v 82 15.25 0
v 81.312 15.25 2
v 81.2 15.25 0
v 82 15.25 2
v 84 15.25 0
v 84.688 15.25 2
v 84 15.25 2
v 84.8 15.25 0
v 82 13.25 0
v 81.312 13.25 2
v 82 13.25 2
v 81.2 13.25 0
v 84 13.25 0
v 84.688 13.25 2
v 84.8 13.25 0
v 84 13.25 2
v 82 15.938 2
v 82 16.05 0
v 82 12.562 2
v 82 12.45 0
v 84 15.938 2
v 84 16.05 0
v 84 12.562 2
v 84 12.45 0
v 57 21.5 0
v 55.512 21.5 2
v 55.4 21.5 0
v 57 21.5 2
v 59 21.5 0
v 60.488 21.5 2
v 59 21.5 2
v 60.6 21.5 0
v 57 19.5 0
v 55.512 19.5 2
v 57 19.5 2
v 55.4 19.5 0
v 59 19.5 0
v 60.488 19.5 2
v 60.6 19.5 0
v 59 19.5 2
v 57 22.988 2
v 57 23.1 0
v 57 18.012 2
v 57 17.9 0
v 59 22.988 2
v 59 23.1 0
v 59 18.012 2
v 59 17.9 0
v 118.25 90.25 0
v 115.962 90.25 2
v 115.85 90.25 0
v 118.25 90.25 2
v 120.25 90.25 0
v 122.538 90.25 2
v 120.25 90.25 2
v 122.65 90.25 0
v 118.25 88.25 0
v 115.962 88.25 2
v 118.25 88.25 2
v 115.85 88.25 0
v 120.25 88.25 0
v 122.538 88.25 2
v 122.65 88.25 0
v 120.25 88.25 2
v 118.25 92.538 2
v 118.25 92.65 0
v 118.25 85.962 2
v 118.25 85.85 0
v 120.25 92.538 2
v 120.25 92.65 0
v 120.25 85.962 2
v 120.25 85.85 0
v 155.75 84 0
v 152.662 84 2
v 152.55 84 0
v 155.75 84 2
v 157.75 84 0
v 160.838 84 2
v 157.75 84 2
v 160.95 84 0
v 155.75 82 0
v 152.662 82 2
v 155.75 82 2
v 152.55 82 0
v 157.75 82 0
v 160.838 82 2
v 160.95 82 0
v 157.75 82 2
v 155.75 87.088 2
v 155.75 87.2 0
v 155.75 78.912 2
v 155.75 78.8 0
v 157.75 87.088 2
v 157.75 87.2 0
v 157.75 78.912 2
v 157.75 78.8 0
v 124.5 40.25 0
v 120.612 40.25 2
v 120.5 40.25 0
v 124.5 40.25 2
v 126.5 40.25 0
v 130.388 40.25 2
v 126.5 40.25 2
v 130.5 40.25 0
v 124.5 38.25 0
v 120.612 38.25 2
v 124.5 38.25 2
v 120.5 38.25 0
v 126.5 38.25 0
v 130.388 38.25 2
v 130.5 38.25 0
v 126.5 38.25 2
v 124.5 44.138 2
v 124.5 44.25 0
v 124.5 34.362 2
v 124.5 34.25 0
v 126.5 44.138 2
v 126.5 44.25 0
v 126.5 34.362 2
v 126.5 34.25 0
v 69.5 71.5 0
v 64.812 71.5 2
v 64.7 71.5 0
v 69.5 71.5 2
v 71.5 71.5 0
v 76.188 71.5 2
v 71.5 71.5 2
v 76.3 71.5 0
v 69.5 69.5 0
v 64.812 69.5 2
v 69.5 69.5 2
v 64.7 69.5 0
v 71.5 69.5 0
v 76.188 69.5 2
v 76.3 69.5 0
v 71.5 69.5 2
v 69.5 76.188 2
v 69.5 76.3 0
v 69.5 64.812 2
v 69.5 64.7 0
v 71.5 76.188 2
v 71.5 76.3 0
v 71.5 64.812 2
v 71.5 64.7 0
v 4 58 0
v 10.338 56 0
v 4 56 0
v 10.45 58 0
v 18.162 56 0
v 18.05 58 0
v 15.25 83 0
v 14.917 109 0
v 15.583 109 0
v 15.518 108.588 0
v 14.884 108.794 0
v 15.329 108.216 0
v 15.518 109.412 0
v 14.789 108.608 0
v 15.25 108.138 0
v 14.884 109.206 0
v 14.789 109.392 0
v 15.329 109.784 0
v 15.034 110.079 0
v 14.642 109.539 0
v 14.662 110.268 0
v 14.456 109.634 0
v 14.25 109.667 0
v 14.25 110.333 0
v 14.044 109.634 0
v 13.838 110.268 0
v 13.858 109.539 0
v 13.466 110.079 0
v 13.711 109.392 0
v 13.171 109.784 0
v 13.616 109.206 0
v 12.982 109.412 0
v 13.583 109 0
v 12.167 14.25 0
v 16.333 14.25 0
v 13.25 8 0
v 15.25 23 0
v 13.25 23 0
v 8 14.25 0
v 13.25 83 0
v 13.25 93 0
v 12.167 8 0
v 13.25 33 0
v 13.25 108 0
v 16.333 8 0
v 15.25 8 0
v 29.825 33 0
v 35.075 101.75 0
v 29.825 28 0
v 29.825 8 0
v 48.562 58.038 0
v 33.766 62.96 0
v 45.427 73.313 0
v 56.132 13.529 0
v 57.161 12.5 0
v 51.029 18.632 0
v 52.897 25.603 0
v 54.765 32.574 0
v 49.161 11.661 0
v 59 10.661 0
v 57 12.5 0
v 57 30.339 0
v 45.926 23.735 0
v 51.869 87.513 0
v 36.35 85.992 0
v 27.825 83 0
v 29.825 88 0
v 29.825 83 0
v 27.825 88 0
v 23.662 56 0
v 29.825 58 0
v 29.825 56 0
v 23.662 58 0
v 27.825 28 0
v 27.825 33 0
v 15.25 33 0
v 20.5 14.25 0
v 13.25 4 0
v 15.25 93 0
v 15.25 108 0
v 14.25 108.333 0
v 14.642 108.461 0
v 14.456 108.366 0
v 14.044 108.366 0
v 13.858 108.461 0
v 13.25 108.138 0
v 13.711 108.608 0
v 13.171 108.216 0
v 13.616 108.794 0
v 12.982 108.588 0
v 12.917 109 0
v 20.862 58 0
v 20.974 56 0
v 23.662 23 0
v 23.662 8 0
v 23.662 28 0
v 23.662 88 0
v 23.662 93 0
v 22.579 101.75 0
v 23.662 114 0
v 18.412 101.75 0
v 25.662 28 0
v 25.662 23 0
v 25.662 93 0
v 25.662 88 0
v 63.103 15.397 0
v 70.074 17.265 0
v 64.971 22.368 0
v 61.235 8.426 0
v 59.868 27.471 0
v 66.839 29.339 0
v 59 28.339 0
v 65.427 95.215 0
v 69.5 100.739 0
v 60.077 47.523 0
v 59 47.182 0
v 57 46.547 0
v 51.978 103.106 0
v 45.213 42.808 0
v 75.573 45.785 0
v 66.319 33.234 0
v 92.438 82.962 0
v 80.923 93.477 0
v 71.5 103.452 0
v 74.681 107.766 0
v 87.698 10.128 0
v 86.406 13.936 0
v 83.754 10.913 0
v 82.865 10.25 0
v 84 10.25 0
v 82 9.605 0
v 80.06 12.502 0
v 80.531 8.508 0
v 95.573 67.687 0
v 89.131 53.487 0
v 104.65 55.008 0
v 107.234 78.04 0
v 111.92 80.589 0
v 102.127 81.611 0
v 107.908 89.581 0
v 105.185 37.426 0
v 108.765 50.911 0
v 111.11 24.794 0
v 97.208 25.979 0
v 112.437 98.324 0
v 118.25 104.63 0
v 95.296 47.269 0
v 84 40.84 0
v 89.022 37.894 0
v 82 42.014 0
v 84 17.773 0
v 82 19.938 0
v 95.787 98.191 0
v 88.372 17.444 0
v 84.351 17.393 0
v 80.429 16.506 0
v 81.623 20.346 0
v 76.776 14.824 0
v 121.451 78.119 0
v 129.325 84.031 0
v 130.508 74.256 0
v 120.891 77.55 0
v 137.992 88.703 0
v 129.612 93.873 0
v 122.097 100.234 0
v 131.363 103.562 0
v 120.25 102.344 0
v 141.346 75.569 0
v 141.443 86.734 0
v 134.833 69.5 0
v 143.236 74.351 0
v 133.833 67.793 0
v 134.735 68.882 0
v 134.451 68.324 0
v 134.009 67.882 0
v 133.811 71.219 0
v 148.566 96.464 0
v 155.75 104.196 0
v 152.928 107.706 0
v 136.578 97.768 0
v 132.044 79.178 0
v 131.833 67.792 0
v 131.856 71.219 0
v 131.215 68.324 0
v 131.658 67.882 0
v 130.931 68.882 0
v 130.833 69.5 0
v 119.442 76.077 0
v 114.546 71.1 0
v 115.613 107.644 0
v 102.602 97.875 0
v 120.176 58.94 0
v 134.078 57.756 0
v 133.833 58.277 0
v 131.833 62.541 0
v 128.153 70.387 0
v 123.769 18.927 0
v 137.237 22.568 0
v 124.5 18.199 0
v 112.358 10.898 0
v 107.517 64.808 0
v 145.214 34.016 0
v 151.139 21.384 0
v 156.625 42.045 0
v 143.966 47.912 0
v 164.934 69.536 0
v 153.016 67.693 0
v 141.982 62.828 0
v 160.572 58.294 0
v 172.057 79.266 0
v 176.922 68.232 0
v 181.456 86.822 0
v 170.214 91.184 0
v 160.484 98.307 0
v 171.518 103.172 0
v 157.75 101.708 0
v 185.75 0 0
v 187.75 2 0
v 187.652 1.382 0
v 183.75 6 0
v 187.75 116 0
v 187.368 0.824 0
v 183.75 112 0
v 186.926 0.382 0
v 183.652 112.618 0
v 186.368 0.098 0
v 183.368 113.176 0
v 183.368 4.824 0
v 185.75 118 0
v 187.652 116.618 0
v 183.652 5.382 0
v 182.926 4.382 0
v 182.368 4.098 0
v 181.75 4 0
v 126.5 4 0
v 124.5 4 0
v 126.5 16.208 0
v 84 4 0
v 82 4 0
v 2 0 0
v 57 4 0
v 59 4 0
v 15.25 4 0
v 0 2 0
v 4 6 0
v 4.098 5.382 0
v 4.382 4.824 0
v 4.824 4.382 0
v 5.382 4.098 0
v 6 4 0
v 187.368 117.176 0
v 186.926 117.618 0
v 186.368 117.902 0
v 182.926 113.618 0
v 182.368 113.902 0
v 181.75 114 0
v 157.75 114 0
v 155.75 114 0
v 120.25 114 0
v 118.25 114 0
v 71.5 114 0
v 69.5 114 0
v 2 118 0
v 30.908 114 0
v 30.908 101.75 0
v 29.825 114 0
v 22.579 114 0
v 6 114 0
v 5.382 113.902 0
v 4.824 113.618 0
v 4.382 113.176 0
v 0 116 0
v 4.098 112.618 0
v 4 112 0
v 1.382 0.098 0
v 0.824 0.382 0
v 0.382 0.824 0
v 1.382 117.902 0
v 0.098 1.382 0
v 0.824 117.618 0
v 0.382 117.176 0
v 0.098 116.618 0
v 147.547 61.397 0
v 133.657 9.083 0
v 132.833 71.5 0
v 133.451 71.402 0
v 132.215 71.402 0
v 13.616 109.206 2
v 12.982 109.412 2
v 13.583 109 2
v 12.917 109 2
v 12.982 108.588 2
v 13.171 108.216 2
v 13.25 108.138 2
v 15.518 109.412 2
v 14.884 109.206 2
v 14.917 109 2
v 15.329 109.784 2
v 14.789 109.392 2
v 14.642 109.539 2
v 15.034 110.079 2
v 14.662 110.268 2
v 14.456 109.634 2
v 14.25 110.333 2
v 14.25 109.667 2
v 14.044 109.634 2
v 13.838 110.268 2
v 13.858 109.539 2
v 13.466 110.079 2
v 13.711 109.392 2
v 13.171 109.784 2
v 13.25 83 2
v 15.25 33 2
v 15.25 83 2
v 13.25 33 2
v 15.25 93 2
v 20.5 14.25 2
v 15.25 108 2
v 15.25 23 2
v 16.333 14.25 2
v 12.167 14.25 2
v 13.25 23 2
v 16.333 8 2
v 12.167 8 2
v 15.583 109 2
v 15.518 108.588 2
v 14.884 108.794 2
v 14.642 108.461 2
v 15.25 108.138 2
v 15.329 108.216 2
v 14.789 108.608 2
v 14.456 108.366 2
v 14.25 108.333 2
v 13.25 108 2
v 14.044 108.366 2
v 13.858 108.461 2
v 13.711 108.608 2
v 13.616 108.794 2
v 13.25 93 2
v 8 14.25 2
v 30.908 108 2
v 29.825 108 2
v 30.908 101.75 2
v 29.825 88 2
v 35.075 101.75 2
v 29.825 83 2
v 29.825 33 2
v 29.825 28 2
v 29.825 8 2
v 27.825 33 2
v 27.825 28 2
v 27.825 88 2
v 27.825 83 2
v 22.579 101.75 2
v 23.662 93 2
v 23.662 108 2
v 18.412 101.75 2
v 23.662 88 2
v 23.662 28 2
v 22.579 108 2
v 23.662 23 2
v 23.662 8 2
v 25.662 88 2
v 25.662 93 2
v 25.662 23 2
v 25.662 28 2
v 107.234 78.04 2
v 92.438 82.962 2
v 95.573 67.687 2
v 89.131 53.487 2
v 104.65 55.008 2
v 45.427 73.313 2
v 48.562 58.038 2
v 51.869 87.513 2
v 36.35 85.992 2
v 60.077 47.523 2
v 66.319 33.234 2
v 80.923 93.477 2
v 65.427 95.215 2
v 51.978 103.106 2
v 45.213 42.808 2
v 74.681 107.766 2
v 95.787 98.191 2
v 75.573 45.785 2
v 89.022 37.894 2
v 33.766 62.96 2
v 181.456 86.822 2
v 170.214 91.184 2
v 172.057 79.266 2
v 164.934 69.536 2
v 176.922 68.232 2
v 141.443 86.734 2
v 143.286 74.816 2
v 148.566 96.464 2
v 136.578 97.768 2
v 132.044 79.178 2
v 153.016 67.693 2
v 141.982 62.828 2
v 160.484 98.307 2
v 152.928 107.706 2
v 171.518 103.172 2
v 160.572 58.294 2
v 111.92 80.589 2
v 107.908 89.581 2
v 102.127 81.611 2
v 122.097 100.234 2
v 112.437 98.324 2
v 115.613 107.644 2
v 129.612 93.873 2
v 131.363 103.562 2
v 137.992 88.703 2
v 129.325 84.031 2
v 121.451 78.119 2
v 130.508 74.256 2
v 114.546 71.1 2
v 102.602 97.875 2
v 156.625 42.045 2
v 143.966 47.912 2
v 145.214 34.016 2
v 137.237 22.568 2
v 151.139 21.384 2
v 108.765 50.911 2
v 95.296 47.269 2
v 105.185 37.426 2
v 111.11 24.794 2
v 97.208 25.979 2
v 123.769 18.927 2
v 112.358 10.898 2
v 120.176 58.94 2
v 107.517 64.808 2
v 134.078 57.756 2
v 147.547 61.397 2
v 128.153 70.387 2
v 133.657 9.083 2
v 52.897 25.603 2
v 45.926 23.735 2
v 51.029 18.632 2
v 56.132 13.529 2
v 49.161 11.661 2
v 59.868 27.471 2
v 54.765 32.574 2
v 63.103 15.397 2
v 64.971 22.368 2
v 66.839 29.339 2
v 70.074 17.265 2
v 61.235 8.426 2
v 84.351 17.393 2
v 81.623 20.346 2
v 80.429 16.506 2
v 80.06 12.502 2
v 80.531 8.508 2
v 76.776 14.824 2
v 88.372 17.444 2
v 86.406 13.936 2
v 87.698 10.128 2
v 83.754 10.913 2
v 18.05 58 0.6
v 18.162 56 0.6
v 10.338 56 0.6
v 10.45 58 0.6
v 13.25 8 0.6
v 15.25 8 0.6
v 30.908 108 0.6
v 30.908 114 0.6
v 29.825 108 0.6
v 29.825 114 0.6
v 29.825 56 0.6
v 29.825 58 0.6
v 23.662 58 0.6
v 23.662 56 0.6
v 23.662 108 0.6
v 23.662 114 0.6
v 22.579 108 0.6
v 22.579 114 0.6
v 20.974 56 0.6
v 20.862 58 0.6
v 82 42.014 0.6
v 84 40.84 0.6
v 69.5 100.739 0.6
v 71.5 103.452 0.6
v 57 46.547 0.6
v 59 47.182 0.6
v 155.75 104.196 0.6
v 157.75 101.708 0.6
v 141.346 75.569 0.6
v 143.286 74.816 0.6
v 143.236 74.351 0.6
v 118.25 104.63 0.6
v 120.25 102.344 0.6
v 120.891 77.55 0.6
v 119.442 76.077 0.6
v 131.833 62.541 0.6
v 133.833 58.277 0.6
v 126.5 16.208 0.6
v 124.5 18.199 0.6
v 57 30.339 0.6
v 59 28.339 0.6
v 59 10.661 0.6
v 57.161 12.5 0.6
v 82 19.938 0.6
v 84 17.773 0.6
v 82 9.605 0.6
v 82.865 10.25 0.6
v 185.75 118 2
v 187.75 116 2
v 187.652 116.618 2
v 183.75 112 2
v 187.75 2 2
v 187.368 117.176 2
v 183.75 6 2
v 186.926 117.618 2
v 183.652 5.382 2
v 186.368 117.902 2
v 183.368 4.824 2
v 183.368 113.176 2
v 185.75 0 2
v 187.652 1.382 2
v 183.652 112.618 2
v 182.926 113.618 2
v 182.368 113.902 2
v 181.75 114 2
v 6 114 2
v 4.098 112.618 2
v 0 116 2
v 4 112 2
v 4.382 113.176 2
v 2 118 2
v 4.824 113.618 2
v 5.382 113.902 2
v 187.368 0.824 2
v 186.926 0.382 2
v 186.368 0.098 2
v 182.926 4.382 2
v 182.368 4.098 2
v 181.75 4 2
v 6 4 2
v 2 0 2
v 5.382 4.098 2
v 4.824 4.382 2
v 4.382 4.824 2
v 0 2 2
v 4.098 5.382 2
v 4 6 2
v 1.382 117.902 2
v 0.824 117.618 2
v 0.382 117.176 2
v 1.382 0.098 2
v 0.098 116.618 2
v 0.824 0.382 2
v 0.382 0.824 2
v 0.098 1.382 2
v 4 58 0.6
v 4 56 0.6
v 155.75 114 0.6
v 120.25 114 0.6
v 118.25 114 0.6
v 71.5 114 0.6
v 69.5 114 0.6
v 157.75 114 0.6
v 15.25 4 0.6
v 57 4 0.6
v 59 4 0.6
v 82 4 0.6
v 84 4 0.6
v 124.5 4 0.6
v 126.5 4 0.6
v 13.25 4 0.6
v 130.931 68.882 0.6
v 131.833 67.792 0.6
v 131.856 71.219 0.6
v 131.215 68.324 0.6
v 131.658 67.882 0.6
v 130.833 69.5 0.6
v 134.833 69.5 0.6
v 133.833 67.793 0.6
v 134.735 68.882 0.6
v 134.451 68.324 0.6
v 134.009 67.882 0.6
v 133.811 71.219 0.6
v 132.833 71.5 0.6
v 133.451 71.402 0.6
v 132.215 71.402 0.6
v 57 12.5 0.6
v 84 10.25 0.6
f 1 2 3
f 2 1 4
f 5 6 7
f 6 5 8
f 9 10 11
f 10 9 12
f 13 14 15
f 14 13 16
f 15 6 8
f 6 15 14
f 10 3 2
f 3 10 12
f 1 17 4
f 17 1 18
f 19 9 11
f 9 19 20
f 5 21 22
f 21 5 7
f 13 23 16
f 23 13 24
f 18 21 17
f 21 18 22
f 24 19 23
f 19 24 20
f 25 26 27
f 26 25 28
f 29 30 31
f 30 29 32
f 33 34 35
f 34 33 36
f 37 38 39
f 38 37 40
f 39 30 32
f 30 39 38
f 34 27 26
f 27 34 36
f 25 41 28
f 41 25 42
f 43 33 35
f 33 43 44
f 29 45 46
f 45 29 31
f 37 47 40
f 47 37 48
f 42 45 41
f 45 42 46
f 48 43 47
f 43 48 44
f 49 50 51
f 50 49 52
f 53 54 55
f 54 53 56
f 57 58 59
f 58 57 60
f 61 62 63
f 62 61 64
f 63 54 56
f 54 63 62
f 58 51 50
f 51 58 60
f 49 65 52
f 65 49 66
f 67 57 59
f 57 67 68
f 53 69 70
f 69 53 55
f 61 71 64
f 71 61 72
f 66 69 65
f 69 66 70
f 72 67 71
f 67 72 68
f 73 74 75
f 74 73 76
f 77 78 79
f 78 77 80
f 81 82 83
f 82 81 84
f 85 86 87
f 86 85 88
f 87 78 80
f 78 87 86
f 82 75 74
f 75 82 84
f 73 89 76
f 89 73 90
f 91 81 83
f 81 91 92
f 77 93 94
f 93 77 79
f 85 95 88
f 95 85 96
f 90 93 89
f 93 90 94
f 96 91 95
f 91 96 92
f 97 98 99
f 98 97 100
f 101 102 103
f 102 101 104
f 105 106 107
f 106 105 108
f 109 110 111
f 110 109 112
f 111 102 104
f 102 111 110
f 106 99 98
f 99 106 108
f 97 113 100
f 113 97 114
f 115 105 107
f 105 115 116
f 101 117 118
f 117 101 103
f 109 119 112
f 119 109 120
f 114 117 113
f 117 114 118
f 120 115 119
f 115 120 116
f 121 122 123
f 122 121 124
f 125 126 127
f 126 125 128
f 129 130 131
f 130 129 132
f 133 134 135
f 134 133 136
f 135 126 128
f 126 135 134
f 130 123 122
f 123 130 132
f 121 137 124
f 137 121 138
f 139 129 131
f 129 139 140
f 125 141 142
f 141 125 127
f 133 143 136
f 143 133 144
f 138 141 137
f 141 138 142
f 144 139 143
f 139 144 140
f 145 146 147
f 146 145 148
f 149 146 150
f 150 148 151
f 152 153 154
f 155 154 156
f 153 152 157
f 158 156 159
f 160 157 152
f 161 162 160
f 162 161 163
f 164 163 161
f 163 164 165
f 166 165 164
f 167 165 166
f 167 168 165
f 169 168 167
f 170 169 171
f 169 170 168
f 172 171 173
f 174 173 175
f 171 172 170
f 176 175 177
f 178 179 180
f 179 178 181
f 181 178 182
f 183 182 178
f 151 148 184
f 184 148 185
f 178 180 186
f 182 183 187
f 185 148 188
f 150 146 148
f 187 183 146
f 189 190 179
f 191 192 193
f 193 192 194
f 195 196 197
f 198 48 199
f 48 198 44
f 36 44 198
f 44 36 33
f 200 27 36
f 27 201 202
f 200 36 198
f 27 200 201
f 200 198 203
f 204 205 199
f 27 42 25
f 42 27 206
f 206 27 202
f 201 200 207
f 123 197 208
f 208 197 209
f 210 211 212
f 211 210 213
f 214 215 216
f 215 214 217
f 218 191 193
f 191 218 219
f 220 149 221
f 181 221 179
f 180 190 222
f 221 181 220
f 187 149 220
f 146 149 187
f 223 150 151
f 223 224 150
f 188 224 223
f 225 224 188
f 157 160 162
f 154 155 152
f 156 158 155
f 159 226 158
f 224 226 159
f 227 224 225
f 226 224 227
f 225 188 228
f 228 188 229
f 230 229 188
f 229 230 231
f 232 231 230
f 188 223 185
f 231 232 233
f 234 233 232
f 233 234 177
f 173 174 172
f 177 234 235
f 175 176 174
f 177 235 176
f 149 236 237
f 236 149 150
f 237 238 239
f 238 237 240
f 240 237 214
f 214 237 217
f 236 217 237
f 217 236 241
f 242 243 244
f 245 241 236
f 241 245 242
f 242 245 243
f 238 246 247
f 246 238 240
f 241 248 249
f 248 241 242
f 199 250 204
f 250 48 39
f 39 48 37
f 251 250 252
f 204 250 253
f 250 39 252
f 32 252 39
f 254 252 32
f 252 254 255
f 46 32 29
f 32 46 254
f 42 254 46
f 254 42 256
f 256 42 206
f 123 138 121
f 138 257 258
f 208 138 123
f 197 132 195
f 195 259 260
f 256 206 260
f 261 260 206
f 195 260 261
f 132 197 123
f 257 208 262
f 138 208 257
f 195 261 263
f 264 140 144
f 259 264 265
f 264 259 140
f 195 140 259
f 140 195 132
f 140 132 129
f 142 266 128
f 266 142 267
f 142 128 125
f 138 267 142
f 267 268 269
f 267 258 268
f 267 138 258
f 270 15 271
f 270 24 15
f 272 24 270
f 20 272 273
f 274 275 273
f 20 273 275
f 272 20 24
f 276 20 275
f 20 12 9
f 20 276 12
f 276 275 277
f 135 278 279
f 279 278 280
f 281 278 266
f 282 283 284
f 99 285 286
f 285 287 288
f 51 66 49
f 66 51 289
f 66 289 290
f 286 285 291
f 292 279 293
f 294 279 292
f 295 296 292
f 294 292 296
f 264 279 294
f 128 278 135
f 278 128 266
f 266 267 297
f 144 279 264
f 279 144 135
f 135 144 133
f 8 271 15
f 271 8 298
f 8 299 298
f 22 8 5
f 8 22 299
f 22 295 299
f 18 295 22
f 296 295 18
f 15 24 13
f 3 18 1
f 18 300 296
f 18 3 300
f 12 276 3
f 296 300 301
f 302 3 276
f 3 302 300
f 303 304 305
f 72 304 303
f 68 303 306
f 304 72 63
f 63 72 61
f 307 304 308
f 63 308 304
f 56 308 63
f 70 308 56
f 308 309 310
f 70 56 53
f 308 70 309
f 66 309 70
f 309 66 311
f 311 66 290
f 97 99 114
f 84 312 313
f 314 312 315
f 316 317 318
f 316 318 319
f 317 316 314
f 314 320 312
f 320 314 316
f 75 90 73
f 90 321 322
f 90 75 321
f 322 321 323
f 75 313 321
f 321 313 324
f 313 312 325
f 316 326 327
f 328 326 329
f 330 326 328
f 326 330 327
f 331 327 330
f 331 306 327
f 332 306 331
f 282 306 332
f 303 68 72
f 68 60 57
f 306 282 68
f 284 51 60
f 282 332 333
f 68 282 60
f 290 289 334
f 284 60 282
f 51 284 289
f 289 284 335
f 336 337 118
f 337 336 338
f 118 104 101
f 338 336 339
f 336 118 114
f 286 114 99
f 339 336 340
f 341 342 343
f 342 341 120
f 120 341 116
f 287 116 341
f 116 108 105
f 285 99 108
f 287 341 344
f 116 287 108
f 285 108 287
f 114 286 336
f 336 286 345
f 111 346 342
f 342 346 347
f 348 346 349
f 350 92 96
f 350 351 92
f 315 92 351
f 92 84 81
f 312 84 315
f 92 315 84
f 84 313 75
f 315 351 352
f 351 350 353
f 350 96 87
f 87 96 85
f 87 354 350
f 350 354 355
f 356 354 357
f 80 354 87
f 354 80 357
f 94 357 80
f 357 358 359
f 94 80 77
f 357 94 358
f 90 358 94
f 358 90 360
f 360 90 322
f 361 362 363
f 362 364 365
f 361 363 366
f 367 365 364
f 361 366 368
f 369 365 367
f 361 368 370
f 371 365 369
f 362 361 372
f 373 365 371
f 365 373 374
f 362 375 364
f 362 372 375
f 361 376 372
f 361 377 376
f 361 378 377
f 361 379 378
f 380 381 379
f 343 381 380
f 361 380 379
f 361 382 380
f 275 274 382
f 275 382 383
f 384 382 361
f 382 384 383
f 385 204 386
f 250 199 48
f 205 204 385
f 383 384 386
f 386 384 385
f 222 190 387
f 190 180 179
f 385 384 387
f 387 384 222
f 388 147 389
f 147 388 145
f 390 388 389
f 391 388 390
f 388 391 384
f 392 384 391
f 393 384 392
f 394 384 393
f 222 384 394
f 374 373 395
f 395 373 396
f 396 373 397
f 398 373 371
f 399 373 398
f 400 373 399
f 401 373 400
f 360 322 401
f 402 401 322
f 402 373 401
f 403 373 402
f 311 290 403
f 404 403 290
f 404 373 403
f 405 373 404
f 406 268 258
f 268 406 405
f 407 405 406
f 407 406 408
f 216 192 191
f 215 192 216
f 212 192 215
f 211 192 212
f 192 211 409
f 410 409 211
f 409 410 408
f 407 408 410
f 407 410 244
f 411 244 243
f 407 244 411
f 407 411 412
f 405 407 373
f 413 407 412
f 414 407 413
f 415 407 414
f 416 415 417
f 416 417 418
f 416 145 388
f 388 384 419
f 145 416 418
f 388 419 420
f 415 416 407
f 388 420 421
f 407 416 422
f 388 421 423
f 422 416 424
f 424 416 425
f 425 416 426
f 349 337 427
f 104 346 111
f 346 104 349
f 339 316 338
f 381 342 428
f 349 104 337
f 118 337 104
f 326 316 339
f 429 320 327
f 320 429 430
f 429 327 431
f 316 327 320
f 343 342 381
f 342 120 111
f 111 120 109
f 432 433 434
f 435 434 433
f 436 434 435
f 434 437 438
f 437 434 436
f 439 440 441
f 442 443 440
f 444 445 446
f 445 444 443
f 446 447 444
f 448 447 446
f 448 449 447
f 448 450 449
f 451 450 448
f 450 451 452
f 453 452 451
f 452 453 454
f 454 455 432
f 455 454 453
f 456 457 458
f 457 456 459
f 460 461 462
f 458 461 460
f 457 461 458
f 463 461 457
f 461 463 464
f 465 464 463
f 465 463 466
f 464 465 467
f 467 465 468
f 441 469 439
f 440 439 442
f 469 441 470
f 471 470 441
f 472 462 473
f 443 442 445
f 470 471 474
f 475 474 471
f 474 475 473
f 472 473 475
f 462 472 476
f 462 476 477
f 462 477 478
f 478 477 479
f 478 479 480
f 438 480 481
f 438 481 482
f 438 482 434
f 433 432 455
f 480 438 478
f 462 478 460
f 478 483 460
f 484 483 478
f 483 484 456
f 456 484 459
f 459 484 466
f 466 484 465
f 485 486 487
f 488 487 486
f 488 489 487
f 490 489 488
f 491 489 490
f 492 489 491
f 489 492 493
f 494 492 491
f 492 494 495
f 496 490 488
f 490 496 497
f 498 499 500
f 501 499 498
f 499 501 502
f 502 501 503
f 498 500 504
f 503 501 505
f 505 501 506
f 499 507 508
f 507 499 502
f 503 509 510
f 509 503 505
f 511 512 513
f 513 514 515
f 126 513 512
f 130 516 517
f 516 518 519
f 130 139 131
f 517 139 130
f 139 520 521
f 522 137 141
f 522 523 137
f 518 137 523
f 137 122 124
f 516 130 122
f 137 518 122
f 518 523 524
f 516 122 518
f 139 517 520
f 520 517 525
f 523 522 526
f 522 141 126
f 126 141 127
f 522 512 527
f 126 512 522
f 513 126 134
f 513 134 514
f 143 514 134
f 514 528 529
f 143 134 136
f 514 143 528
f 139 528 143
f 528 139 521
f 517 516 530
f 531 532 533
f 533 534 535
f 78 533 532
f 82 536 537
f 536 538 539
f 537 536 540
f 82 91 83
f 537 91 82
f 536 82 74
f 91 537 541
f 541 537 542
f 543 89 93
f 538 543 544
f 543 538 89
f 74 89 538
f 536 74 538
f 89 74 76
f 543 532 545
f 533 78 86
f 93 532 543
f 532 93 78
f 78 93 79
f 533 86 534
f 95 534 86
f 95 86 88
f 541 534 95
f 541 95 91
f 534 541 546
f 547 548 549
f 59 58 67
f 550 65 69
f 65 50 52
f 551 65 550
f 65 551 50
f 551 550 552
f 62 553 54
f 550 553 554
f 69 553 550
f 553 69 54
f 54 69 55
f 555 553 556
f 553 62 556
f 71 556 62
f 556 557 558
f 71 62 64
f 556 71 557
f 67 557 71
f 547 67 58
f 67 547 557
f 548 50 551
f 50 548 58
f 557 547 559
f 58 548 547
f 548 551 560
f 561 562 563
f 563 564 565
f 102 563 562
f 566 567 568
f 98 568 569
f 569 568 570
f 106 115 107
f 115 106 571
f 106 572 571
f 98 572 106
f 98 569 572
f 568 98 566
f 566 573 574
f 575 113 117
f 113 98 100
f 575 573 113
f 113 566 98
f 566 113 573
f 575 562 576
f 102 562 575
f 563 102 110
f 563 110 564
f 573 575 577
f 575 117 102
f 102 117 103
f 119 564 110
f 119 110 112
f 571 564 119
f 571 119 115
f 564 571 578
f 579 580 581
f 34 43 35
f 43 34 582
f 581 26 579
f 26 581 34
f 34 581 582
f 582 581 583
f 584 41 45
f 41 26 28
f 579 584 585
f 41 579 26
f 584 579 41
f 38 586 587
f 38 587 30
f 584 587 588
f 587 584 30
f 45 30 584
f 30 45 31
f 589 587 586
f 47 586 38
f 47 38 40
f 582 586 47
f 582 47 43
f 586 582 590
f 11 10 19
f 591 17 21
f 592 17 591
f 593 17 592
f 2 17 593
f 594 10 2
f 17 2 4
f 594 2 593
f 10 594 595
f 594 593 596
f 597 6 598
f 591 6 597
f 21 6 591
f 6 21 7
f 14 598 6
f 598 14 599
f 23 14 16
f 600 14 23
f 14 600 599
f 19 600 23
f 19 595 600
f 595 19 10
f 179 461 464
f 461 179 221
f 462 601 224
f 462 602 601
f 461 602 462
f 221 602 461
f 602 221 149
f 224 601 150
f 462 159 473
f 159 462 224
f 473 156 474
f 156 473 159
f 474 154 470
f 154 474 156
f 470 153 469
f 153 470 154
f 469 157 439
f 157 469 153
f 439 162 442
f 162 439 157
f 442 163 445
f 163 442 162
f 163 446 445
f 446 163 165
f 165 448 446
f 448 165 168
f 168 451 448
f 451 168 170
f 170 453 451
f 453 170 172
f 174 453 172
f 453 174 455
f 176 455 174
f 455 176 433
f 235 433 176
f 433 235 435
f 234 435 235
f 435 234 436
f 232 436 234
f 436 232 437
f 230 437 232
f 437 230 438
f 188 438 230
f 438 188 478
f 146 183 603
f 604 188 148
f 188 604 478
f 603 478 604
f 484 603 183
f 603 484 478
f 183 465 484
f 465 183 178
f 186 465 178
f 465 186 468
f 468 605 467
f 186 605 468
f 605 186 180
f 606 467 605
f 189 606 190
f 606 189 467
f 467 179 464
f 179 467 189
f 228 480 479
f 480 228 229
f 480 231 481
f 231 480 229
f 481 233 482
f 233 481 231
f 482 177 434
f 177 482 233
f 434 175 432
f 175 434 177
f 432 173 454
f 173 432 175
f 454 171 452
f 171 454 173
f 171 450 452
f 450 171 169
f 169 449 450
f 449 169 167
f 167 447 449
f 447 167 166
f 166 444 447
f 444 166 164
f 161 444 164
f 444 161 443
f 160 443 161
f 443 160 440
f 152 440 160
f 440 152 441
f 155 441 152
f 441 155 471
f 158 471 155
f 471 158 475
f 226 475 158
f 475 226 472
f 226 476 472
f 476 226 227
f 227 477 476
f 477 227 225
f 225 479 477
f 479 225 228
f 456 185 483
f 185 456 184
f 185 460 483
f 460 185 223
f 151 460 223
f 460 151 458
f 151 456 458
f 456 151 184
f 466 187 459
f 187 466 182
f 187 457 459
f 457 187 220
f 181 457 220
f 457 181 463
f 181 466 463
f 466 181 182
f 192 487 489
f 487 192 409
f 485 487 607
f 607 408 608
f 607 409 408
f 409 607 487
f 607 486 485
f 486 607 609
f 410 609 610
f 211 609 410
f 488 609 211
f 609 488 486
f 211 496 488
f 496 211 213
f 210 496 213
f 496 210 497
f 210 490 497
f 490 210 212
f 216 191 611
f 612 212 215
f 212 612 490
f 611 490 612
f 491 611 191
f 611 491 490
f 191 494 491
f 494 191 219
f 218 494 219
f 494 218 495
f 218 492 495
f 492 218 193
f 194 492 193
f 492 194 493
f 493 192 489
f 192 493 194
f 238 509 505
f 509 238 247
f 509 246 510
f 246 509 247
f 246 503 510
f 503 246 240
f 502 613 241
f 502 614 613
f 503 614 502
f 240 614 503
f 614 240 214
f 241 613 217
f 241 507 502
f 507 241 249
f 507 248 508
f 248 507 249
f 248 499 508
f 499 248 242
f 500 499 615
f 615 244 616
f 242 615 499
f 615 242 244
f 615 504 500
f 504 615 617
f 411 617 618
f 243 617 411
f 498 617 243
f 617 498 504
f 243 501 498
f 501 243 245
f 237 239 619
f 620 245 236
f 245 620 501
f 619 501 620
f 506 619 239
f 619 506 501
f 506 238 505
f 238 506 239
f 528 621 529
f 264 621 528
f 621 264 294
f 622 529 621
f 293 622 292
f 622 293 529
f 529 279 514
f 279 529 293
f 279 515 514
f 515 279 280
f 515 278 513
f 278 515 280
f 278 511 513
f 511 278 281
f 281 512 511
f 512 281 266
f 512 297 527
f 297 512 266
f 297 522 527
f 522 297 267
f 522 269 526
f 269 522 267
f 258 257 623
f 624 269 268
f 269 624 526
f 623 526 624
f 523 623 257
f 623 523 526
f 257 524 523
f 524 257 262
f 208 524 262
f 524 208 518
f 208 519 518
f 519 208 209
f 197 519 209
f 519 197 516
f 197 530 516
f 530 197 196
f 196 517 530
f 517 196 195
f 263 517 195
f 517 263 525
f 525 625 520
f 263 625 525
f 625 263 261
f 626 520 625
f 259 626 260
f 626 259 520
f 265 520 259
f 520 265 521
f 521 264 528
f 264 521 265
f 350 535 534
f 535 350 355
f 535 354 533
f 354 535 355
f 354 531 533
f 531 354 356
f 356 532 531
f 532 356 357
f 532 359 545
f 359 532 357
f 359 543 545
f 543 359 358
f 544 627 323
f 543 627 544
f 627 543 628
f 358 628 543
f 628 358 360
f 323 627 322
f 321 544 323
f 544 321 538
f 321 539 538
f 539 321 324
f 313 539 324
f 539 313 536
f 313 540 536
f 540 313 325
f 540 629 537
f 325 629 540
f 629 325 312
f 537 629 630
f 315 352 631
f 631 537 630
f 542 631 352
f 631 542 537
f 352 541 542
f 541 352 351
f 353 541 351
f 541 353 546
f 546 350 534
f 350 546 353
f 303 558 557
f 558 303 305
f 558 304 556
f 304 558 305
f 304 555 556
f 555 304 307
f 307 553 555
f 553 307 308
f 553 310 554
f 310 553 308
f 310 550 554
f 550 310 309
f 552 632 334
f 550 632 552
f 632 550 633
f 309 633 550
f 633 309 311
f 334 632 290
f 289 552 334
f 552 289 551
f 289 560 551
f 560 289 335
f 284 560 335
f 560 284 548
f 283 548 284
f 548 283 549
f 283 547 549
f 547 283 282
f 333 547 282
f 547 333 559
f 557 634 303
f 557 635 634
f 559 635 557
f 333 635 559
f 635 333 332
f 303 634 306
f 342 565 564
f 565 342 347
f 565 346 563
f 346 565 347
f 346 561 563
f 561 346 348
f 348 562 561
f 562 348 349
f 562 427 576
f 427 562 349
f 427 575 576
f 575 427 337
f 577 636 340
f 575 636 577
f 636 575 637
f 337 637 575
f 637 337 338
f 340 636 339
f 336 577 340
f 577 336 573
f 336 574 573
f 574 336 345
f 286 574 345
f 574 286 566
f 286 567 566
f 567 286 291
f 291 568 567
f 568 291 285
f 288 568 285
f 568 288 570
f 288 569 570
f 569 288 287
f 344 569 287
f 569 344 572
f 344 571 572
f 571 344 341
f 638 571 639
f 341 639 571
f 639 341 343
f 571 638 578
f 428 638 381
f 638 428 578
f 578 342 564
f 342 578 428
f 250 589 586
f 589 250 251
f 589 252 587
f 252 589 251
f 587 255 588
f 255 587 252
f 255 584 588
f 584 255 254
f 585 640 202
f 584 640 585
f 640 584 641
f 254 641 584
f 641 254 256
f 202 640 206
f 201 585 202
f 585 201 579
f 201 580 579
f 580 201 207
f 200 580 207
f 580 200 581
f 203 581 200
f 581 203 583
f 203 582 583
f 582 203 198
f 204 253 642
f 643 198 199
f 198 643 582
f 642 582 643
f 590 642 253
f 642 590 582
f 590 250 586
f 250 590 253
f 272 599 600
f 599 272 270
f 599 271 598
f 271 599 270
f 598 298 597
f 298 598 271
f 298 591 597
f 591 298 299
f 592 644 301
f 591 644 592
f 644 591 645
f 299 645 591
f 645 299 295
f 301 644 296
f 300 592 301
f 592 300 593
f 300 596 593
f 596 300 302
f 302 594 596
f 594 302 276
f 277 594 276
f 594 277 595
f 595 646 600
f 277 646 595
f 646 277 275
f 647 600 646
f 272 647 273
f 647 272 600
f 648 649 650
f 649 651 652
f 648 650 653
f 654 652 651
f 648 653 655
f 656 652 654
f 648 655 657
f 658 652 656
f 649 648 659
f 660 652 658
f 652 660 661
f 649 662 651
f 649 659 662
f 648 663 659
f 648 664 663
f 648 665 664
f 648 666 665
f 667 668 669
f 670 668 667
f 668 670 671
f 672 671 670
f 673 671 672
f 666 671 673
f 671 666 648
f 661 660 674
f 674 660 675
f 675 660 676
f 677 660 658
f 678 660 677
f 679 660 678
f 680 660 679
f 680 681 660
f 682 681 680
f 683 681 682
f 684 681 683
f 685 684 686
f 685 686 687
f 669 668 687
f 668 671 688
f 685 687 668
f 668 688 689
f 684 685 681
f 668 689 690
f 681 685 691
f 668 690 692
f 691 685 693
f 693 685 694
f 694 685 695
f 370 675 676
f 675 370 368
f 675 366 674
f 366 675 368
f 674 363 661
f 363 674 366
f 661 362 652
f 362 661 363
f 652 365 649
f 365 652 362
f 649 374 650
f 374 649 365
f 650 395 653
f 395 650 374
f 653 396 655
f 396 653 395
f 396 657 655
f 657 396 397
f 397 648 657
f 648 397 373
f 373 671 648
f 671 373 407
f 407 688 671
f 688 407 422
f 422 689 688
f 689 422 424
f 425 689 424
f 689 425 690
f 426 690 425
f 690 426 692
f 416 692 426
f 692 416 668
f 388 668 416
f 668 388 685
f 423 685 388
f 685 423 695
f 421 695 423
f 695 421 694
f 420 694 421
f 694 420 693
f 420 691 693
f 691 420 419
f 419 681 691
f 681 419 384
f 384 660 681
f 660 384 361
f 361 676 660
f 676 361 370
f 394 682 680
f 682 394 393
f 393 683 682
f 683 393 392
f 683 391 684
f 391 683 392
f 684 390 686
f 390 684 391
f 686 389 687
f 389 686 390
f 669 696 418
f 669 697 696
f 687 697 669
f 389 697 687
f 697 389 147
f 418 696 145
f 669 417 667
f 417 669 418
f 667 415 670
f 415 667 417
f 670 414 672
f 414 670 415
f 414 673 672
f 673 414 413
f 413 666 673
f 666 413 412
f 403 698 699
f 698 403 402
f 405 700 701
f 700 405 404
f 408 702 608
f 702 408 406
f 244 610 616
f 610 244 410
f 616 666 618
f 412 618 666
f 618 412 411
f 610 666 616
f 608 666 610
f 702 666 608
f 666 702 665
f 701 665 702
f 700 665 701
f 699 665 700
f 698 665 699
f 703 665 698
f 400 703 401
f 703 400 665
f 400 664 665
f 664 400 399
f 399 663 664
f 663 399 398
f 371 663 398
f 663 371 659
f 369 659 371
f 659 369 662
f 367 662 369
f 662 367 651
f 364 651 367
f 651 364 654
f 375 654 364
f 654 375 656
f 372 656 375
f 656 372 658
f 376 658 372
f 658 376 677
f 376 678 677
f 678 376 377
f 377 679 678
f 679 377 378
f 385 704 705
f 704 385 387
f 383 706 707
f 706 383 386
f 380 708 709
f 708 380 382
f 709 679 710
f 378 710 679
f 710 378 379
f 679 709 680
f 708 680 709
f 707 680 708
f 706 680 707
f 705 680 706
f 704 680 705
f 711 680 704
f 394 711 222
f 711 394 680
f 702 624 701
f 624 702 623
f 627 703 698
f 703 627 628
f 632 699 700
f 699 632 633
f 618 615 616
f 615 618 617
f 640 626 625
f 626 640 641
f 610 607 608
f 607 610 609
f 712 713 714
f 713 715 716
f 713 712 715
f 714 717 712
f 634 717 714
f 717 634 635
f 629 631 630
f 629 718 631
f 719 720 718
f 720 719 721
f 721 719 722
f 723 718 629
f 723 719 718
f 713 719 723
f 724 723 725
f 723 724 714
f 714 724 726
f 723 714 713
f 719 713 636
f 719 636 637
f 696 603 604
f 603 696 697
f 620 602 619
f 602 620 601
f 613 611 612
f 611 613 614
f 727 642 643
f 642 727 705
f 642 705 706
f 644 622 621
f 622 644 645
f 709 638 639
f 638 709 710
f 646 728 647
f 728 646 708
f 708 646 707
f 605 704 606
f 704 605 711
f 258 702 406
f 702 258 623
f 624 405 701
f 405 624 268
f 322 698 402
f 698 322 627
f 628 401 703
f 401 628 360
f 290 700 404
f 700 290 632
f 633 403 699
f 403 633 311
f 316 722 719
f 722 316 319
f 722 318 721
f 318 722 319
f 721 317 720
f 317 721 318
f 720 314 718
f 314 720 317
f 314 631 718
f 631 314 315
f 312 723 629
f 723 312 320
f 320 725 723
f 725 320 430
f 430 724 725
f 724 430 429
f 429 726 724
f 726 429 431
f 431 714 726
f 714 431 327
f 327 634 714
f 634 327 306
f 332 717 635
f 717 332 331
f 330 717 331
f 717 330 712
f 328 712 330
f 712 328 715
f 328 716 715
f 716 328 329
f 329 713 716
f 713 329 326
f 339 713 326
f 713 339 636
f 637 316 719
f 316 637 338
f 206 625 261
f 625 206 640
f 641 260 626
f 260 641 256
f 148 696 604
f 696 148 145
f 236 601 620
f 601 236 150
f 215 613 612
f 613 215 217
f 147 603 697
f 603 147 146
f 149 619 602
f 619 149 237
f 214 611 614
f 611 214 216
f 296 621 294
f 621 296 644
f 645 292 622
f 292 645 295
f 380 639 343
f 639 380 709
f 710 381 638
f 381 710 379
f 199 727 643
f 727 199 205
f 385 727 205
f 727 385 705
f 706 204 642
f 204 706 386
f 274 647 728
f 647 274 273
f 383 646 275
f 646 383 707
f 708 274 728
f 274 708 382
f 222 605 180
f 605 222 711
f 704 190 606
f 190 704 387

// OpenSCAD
$fn = 20;

// This defines the scale for everything
height = 100;

// How thick to make the pieces
thickness = 2;

// How thick to make the supports
support_thickness = 0.6;

width = height * 3 / 4;
trunk_width = height / 8;

// Needs to be set before positions is defined since we need
// to call diameter()
num = 6;

positions = [
    [
        trunk_width * 3 + diameter(6) / 2,
        diameter(1) / 2
    ],
    [
        trunk_width * 3 + diameter(2) / 2,
        diameter(2) / 2
    ],
    [
        trunk_width * 3.5 + diameter(6) * 0.90,
        height - diameter(3) / 2
    ],
    [
        trunk_width * 3.5 + diameter(6) + diameter(3) * 0.80,
        height - diameter(4) / 2
    ],
    [
        trunk_width * 4 + diameter(6) * 0.90,
        diameter(5) / 2
    ],
    [
        trunk_width * 2.0 + diameter(6) / 2,
        height - diameter(6) / 2
    ],
];

//angles = rands(0, 360, num, 10800);
angles = [174.732, 45, 152.613, 53.7928, 45.1305, 11.5987];

//#square([220, 140]);

// Layers and trunk
translate([thickness * 4, thickness * 4, 0]) {
    difference() {
        linear_extrude(thickness) {
            translate([trunk_width / 2, 0, 0])
                hanger_trunk(height, trunk_width, thickness);

            translate([trunk_width * 1.333, height, 0])
                rotate([180, 0, 0])
                    left_trunk(height, trunk_width, thickness);

            translate([trunk_width * 1.666, height, 0])
                rotate([180, 0, 0])
                    right_trunk(height, trunk_width, thickness);

            // Place layers in a pattern to optimize space
            for(i = [1 : 1 : num])
                translate(positions[i-1])
                    rotate([0, 0, angles[i-1]])
                        layer(i + 4, diameter(i));
        }

        // Place the trunks in the center of each layer and position
        // evenly along the Z axis
        for (i = [1 : 1 : num]) {
            position = [
                positions[i-1][0],
                positions[i-1][1],
                -height * (num - i + 1) / (num + 1),
            ];
            translate(position)
                vertical_trunk(height, trunk_width, thickness);
        }
    }
}

// Outer ring
linear_extrude(thickness) {
    difference() {
        hull() {
            minX = thickness;
            maxX = thickness * 6 + positions[3][0] + diameter(4) / 2;
            minY = thickness;
            maxY = thickness * 4 * 2 + height;
            if(maxX + thickness > 220)
                echo("!!! maxX is outside printable area", maxX);
            // Lower left
            translate([minX, minY, 0])
                circle(thickness);
            // Upper left
            translate([minX, maxY, 0])
                circle(thickness);
            // Upper right
            translate([maxX, maxY, 0])
                circle(thickness);
            // Lower right
            translate([maxX, minY, 0])
                circle(thickness);
        }
        hull() {
            minX = thickness * 3;
            maxX = thickness * 4 + positions[3][0] + diameter(4) / 2;
            minY = thickness * 3;
            maxY = thickness * 3 * 2 + height;
            // Lower left
            translate([minX, minY, 0])
                circle(thickness);
            // Upper left
            translate([minX, maxY, 0])
                circle(thickness);
            // Upper right
            translate([maxX, maxY, 0])
                circle(thickness);
            // Lower right
            translate([maxX, minY, 0])
                circle(thickness);
        }
    }
}

// Supports
color("goldenrod") linear_extrude(support_thickness) {
    // Bottom of main trunk
    translate([
        thickness * 3.5 + trunk_width / 2,
        0
    ])
        square([thickness, thickness * 4]);
    // Through the middle of all trunk pieces
    translate([
        0,
        thickness * 3 + height * 0.50
    ])
        square([thickness * 3 + trunk_width * 2, thickness]);
    // Bottom (top?) of left trunk
    translate([
        thickness * 4 + trunk_width * 1.333 - trunk_width / 3 / 2,
        thickness * 4 + height - 1
    ])
        square([trunk_width / 3 / 2 - thickness / 2, thickness * 4]);
    // Bottom (top?) of right trunk
    translate([
        thickness * 4 + trunk_width * 1.666 + thickness / 2,
        thickness * 4 + height - 1
    ])
        square([trunk_width / 3 / 2 - thickness / 2, thickness * 4]);
    // Bottom of layer #1
    translate([
        thickness * 3.5 + positions[0][0],
        0
    ])
        square([thickness, thickness * 2 + positions[0][1]]);
    // Top of layer #1
    translate([
        thickness * 3.5 + positions[0][0],
        thickness * 5.5 + positions[0][1]
    ])
        square([thickness, diameter(6) / 2]);
    // Bottom of layer #2
    translate([
        thickness * 3.5 + positions[1][0],
        0
    ])
        square([thickness, positions[1][1]]);
    // Top of layer #2
    translate([
        thickness * 3.5 + positions[1][0],
        thickness * 6.0 + positions[1][1]
    ])
        square([thickness, diameter(6) / 2]);
    // Top of layer #6
    translate([
        thickness * 3.5 + positions[5][0],
        trunk_width + positions[5][1]
    ])
        square([thickness, diameter(6) / 2]);
    // Top of layer #4
    translate([
        thickness * 3.5 + positions[3][0],
        positions[3][1] + trunk_width
    ])
        square([thickness, diameter(4) / 2]);
    // Top of layer #3
    translate([
        thickness * 3.5 + positions[2][0],
        positions[2][1] + trunk_width
    ])
        square([thickness, diameter(3) / 2]);
    // Bottom of layer #5
    translate([
        thickness * 3.5 + positions[4][0],
        0
    ])
        square([thickness, diameter(4) / 2]);
    // Custom tri-spiked piece to hold layers 3, 4, and 5 in place
    center_345 = [
        thickness * 3.5 + (positions[4][0] + positions[3][0] + positions[2][0]) / 3,
        thickness * 3.5 + (positions[4][1] + positions[3][1] + positions[2][1]) / 3
    ];
    translate(center_345)
        circle(thickness);
    translate(center_345)
        rotate([0, 0, 60])
            translate([-thickness / 2, 0, 0])
                square([thickness, diameter(3) / 2]);
    translate(center_345)
        rotate([0, 0, 300])
            translate([-thickness / 2, 0, 0])
                square([thickness, diameter(4) / 2 - trunk_width / 2]);
    translate(center_345)
        rotate([0, 0, 180])
            translate([-thickness / 2, 0, 0])
                square([thickness, diameter(5) / 2 - trunk_width / 2]);
}

function diameter(i) = width * i / num;

module base_trunk(height, trunk_width, thickness) {
    coords = [
        [0, height],
        [thickness / 2, height],
        [trunk_width / 2, trunk_width / 2],
        [trunk_width / 2 / 3, trunk_width / 2],
        [trunk_width / 2 / 3, 0],
        [0, 0]
    ];
    polygon(coords);
    mirror([1, 0, 0])
        polygon(coords);
}

module hanger_trunk(height, trunk_width, thickness) {
    union() {
        difference() {
            base_trunk(height, trunk_width, thickness);
            translate([-thickness / 2, height - height * 5 / 20, 0])
                square([thickness, height * 2 / 20]);
            translate([-thickness / 2, height - height * 17 / 20, 0])
                square([thickness, height * 2 / 20]);
        }
        translate([0, height + thickness / 2, 0])
            difference() {
                union() {
                    circle(thickness / 1.5);
                    translate([0, -thickness / 2, 0])
                        square(thickness, center = true);
                }
                circle(thickness / 3);
            }
    }
}

module left_trunk(height, trunk_width, thickness) {
    difference() {
        base_trunk(height, trunk_width, thickness);
        translate([thickness / 2, 0, 0])
            square([trunk_width / 2, height]);
        translate([-thickness / 2, 0, 0])
            square([thickness, height * 3 / 20]);
        translate([-thickness / 2, height - height * 16 / 20, 0])
            square([thickness, height * 12 / 20]);
        translate([-thickness / 2, height - height * 3 / 20, 0])
            square([thickness, height * 3 / 20]);
    }
}

module right_trunk(height, trunk_width, thickness) {
    difference() {
        base_trunk(height, trunk_width, thickness);
        translate([-trunk_width / 2 - thickness / 2, 0, 0])
            square([trunk_width / 2, height]);
        translate([-thickness / 2, 0, 0])
            square([thickness, height * 4 / 20]);
        translate([-thickness / 2, height - height * 15 / 20, 0])
            square([thickness, height * 10 / 20]);
        translate([-thickness / 2, height - height * 4 / 20, 0])
            square([thickness, height * 4 / 20]);
    }
}

module vertical_trunk(height, trunk_width, thickness) {
    rotate([90, 0, 0])
        union() {
            linear_extrude(thickness, center = true)
                base_trunk(height, trunk_width, thickness);
            rotate([0, 90, 0])
                linear_extrude(thickness, center = true)
                    base_trunk(height, trunk_width, thickness);
        }
}

/**
 * Uses a bunch of trig to figure out how to make each layer
 *
 * @see https://calcresource.com/geom-ngon.html
 */
module layer (teeth, diameter) {
    tip_radius = diameter / 2;
    echo("tip radius", tip_radius);

    central_angle = 360 / teeth;
    echo("central angle", central_angle);

    // Create a triangle with:
    // bottom length = tip_radius
    // left angle = central_angle / 2
    // right angle = 30 (1/2 equilateral triangle angle)
    // Find the length of the right side
    obtuse_angle = 180 - 30 - central_angle / 2;
    tooth_edge = tip_radius * sin(central_angle / 2) / sin(obtuse_angle);
    root_radius = tip_radius * sin(30) / sin(obtuse_angle);
    echo("tooth side", tooth_edge);

    tooth_height = sqrt(3) * tooth_edge / 2;
    echo("tooth height", tooth_height);

    tooth_radius = tooth_edge / sqrt(3);
    echo("tooth radius", tooth_radius);

    reference_radius = tip_radius - tooth_radius;

    //#circle(tip_radius);
    circle(root_radius, $fn = teeth * 2);
    for(i = [1 : 1 : teeth])
        rotate([0, 0, i / teeth * 360])
            translate([reference_radius, 0, 0])
                circle(tooth_radius, $fn = 3);
}
